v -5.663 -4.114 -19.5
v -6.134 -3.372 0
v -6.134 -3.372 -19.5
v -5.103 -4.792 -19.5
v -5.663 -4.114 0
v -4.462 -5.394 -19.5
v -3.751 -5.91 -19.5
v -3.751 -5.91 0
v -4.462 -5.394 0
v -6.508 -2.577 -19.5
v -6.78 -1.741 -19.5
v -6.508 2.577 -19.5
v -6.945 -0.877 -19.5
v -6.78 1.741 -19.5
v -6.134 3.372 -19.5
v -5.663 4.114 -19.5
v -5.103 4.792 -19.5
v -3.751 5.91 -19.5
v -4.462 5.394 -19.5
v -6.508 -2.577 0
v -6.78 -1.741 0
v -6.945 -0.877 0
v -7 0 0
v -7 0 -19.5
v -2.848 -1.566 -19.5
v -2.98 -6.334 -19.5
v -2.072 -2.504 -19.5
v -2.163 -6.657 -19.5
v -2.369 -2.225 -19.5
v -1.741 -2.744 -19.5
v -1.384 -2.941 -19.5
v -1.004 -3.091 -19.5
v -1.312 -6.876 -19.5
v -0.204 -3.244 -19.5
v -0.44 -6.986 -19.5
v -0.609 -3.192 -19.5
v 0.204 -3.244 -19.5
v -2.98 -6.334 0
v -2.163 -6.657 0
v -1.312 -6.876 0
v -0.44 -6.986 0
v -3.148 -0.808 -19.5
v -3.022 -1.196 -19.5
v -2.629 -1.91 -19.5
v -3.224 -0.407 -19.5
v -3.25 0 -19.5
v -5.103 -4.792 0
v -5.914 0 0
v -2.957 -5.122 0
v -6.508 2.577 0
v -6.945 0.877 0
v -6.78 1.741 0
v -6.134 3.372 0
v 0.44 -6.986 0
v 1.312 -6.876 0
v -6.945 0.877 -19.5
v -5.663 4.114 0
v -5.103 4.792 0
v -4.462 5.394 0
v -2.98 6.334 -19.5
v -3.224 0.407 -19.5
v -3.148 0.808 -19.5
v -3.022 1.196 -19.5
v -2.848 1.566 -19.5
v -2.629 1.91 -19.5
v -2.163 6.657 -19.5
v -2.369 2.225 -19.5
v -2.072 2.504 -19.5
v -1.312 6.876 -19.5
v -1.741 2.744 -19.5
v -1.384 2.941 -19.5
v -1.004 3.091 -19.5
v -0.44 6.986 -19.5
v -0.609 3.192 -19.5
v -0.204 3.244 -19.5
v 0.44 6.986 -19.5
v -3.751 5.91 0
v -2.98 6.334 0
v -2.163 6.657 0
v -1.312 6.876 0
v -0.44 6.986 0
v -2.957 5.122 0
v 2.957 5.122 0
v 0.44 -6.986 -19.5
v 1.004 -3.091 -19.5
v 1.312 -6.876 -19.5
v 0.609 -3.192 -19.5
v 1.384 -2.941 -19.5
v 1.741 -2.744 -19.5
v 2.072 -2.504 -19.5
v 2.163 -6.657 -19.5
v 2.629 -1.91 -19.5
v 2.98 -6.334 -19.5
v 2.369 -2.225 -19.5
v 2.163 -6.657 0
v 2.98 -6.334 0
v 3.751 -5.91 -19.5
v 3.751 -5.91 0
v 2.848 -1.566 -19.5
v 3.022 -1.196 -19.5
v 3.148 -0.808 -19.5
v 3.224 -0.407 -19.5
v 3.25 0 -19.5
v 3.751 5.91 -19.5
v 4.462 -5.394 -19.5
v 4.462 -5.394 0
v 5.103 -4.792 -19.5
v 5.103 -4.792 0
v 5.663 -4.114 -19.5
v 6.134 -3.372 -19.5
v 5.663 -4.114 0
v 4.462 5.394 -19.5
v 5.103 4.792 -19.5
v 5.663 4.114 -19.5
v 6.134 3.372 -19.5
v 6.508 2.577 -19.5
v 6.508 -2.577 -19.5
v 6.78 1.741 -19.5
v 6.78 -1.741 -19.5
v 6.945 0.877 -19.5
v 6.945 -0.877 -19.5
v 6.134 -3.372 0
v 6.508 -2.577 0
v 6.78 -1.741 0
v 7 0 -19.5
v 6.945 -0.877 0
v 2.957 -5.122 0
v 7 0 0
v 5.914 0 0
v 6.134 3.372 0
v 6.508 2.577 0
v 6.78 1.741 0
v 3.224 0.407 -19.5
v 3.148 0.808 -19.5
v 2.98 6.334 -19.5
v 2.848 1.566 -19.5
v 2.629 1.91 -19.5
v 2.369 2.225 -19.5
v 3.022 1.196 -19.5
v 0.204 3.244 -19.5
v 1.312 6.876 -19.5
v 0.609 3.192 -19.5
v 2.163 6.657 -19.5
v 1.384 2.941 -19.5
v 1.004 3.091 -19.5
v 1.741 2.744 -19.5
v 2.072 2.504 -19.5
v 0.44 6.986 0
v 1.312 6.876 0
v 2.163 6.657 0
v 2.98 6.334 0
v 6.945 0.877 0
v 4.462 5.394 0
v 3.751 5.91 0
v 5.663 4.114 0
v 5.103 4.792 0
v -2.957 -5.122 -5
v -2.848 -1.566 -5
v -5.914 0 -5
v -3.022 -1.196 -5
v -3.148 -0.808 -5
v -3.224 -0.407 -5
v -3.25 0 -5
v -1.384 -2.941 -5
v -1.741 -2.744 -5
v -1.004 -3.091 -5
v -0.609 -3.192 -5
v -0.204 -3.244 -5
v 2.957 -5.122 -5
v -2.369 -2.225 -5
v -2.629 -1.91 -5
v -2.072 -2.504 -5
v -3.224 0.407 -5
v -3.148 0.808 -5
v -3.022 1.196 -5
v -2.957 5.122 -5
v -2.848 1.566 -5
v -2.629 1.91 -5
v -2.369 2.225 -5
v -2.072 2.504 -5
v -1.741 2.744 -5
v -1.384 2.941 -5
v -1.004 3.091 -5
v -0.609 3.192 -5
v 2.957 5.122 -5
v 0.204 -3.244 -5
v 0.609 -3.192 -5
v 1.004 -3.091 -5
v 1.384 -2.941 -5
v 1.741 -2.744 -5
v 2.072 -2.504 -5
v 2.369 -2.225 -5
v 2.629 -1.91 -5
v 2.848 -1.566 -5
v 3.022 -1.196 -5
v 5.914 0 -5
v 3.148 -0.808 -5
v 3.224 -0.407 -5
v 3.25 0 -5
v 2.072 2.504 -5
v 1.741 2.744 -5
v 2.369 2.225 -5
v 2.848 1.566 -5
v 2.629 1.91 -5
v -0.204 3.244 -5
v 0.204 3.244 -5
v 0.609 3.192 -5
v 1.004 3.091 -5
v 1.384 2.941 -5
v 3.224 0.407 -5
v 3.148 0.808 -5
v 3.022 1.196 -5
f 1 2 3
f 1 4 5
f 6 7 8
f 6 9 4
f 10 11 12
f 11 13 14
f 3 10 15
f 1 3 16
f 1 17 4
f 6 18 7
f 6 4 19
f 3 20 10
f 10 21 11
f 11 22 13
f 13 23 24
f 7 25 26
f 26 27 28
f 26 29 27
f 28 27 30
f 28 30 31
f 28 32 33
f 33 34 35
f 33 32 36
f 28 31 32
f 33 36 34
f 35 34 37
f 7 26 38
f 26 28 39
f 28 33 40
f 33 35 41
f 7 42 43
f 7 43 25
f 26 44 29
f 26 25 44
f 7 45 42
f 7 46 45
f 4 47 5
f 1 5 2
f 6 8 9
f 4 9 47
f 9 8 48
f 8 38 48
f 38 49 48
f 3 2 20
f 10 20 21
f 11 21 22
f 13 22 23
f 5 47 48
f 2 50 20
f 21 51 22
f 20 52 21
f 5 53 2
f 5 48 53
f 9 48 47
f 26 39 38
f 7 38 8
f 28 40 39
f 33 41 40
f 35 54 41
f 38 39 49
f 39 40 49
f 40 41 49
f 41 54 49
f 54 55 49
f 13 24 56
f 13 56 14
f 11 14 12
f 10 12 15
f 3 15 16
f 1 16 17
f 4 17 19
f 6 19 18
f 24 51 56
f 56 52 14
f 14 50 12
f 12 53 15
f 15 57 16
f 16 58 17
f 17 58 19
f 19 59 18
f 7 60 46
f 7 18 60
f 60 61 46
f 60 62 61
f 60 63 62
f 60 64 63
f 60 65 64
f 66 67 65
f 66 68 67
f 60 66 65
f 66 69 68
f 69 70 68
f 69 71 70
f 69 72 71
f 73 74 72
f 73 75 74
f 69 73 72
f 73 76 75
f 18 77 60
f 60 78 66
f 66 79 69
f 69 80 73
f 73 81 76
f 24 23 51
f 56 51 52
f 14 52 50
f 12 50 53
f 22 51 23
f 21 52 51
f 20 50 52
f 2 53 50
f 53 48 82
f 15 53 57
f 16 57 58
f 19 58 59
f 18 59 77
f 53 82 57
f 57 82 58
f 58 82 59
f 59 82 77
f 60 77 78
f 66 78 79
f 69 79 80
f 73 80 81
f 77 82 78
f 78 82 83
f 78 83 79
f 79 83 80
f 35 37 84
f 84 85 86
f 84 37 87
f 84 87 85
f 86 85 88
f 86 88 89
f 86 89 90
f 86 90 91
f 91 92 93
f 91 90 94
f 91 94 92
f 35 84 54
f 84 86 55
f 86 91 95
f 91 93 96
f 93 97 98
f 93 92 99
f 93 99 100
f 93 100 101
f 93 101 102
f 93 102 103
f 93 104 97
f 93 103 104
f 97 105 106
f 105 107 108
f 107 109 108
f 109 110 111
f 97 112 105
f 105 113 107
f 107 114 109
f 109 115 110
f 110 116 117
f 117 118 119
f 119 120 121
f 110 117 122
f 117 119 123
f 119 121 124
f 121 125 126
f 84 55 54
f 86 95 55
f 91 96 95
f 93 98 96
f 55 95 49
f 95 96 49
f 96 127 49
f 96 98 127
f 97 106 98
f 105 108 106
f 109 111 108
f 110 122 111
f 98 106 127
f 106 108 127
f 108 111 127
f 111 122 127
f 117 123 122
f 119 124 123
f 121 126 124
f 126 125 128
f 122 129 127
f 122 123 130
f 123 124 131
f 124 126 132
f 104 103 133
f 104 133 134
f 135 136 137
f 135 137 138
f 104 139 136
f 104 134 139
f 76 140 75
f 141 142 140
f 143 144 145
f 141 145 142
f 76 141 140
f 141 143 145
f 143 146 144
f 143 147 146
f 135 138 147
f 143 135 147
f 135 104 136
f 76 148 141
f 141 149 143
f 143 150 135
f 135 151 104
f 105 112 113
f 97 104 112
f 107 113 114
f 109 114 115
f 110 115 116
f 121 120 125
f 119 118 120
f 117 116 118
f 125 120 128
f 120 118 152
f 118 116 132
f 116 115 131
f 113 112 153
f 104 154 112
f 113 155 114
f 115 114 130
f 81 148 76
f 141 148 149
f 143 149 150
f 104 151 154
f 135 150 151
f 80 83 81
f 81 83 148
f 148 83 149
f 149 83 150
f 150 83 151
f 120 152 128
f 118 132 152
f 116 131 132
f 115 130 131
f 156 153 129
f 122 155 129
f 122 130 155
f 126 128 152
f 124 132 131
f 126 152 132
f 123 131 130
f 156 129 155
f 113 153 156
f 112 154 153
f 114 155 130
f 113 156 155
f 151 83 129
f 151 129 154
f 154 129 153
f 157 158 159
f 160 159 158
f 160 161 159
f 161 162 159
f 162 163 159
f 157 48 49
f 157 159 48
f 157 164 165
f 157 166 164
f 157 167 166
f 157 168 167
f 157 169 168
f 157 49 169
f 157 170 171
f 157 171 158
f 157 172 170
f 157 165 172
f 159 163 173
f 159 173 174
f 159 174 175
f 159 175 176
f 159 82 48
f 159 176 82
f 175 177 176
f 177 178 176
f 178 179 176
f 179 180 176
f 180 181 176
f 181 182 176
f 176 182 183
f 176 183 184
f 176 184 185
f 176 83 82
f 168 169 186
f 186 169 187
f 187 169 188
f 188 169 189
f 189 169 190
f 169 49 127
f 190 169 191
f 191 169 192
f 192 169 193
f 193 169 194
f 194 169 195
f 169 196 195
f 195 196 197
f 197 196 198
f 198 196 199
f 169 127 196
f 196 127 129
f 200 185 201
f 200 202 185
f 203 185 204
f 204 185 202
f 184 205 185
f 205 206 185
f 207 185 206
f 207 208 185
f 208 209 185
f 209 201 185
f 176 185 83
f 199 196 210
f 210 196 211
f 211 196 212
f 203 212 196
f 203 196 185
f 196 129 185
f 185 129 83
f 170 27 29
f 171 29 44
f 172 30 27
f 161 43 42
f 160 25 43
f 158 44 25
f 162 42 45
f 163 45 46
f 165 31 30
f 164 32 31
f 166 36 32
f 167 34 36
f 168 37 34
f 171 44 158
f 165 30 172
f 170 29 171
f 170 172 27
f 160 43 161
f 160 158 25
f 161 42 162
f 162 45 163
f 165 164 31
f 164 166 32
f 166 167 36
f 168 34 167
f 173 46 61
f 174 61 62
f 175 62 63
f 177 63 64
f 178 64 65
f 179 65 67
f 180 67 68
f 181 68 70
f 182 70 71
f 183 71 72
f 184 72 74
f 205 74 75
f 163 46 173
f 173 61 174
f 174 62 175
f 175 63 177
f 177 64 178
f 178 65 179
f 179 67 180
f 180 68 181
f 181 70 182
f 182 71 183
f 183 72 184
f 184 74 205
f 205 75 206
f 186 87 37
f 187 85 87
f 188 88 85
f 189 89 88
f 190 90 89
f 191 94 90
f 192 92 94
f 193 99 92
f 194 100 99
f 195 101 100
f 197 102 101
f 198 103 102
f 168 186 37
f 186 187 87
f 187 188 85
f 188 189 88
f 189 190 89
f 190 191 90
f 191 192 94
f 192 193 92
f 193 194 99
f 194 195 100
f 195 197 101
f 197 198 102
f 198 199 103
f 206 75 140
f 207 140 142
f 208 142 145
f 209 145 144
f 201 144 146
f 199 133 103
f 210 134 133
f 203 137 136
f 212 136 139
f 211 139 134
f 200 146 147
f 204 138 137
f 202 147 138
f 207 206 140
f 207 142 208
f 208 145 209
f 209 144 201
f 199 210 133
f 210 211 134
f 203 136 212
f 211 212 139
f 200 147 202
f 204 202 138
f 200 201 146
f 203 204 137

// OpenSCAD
$fn = 50;

difference() {
	union() {
		translate(v = [0, 0, -19.5]) {
			cylinder(h = 19.5, r = 7.0);
		}
		#translate(v = [0, 0, -21.0]) {
			cylinder(h = 21, r = 2.875);
		}
	}
	union() {
		translate(v = [0, 0, 0]) {
			rotate(a = [0, 0, 0]) {
				difference() {
					union() {
						translate(v = [0, 0, -5]) {
							linear_extrude(height = 5) {
								polygon(points = [[5.914249999999999, 0.0], [2.957125, 5.1218907443321156], [-2.9571249999999982, 5.1218907443321156], [-5.914249999999999, 7.242867331857232e-16], [-2.9571250000000022, -5.121890744332115], [2.9571249999999956, -5.121890744332118]]);
							}
						}
					}
					union();
				}
			}
		}
		#translate(v = [0, 0, -100.0]) {
			cylinder(h = 200, r = 3.25);
		}
	}
}
